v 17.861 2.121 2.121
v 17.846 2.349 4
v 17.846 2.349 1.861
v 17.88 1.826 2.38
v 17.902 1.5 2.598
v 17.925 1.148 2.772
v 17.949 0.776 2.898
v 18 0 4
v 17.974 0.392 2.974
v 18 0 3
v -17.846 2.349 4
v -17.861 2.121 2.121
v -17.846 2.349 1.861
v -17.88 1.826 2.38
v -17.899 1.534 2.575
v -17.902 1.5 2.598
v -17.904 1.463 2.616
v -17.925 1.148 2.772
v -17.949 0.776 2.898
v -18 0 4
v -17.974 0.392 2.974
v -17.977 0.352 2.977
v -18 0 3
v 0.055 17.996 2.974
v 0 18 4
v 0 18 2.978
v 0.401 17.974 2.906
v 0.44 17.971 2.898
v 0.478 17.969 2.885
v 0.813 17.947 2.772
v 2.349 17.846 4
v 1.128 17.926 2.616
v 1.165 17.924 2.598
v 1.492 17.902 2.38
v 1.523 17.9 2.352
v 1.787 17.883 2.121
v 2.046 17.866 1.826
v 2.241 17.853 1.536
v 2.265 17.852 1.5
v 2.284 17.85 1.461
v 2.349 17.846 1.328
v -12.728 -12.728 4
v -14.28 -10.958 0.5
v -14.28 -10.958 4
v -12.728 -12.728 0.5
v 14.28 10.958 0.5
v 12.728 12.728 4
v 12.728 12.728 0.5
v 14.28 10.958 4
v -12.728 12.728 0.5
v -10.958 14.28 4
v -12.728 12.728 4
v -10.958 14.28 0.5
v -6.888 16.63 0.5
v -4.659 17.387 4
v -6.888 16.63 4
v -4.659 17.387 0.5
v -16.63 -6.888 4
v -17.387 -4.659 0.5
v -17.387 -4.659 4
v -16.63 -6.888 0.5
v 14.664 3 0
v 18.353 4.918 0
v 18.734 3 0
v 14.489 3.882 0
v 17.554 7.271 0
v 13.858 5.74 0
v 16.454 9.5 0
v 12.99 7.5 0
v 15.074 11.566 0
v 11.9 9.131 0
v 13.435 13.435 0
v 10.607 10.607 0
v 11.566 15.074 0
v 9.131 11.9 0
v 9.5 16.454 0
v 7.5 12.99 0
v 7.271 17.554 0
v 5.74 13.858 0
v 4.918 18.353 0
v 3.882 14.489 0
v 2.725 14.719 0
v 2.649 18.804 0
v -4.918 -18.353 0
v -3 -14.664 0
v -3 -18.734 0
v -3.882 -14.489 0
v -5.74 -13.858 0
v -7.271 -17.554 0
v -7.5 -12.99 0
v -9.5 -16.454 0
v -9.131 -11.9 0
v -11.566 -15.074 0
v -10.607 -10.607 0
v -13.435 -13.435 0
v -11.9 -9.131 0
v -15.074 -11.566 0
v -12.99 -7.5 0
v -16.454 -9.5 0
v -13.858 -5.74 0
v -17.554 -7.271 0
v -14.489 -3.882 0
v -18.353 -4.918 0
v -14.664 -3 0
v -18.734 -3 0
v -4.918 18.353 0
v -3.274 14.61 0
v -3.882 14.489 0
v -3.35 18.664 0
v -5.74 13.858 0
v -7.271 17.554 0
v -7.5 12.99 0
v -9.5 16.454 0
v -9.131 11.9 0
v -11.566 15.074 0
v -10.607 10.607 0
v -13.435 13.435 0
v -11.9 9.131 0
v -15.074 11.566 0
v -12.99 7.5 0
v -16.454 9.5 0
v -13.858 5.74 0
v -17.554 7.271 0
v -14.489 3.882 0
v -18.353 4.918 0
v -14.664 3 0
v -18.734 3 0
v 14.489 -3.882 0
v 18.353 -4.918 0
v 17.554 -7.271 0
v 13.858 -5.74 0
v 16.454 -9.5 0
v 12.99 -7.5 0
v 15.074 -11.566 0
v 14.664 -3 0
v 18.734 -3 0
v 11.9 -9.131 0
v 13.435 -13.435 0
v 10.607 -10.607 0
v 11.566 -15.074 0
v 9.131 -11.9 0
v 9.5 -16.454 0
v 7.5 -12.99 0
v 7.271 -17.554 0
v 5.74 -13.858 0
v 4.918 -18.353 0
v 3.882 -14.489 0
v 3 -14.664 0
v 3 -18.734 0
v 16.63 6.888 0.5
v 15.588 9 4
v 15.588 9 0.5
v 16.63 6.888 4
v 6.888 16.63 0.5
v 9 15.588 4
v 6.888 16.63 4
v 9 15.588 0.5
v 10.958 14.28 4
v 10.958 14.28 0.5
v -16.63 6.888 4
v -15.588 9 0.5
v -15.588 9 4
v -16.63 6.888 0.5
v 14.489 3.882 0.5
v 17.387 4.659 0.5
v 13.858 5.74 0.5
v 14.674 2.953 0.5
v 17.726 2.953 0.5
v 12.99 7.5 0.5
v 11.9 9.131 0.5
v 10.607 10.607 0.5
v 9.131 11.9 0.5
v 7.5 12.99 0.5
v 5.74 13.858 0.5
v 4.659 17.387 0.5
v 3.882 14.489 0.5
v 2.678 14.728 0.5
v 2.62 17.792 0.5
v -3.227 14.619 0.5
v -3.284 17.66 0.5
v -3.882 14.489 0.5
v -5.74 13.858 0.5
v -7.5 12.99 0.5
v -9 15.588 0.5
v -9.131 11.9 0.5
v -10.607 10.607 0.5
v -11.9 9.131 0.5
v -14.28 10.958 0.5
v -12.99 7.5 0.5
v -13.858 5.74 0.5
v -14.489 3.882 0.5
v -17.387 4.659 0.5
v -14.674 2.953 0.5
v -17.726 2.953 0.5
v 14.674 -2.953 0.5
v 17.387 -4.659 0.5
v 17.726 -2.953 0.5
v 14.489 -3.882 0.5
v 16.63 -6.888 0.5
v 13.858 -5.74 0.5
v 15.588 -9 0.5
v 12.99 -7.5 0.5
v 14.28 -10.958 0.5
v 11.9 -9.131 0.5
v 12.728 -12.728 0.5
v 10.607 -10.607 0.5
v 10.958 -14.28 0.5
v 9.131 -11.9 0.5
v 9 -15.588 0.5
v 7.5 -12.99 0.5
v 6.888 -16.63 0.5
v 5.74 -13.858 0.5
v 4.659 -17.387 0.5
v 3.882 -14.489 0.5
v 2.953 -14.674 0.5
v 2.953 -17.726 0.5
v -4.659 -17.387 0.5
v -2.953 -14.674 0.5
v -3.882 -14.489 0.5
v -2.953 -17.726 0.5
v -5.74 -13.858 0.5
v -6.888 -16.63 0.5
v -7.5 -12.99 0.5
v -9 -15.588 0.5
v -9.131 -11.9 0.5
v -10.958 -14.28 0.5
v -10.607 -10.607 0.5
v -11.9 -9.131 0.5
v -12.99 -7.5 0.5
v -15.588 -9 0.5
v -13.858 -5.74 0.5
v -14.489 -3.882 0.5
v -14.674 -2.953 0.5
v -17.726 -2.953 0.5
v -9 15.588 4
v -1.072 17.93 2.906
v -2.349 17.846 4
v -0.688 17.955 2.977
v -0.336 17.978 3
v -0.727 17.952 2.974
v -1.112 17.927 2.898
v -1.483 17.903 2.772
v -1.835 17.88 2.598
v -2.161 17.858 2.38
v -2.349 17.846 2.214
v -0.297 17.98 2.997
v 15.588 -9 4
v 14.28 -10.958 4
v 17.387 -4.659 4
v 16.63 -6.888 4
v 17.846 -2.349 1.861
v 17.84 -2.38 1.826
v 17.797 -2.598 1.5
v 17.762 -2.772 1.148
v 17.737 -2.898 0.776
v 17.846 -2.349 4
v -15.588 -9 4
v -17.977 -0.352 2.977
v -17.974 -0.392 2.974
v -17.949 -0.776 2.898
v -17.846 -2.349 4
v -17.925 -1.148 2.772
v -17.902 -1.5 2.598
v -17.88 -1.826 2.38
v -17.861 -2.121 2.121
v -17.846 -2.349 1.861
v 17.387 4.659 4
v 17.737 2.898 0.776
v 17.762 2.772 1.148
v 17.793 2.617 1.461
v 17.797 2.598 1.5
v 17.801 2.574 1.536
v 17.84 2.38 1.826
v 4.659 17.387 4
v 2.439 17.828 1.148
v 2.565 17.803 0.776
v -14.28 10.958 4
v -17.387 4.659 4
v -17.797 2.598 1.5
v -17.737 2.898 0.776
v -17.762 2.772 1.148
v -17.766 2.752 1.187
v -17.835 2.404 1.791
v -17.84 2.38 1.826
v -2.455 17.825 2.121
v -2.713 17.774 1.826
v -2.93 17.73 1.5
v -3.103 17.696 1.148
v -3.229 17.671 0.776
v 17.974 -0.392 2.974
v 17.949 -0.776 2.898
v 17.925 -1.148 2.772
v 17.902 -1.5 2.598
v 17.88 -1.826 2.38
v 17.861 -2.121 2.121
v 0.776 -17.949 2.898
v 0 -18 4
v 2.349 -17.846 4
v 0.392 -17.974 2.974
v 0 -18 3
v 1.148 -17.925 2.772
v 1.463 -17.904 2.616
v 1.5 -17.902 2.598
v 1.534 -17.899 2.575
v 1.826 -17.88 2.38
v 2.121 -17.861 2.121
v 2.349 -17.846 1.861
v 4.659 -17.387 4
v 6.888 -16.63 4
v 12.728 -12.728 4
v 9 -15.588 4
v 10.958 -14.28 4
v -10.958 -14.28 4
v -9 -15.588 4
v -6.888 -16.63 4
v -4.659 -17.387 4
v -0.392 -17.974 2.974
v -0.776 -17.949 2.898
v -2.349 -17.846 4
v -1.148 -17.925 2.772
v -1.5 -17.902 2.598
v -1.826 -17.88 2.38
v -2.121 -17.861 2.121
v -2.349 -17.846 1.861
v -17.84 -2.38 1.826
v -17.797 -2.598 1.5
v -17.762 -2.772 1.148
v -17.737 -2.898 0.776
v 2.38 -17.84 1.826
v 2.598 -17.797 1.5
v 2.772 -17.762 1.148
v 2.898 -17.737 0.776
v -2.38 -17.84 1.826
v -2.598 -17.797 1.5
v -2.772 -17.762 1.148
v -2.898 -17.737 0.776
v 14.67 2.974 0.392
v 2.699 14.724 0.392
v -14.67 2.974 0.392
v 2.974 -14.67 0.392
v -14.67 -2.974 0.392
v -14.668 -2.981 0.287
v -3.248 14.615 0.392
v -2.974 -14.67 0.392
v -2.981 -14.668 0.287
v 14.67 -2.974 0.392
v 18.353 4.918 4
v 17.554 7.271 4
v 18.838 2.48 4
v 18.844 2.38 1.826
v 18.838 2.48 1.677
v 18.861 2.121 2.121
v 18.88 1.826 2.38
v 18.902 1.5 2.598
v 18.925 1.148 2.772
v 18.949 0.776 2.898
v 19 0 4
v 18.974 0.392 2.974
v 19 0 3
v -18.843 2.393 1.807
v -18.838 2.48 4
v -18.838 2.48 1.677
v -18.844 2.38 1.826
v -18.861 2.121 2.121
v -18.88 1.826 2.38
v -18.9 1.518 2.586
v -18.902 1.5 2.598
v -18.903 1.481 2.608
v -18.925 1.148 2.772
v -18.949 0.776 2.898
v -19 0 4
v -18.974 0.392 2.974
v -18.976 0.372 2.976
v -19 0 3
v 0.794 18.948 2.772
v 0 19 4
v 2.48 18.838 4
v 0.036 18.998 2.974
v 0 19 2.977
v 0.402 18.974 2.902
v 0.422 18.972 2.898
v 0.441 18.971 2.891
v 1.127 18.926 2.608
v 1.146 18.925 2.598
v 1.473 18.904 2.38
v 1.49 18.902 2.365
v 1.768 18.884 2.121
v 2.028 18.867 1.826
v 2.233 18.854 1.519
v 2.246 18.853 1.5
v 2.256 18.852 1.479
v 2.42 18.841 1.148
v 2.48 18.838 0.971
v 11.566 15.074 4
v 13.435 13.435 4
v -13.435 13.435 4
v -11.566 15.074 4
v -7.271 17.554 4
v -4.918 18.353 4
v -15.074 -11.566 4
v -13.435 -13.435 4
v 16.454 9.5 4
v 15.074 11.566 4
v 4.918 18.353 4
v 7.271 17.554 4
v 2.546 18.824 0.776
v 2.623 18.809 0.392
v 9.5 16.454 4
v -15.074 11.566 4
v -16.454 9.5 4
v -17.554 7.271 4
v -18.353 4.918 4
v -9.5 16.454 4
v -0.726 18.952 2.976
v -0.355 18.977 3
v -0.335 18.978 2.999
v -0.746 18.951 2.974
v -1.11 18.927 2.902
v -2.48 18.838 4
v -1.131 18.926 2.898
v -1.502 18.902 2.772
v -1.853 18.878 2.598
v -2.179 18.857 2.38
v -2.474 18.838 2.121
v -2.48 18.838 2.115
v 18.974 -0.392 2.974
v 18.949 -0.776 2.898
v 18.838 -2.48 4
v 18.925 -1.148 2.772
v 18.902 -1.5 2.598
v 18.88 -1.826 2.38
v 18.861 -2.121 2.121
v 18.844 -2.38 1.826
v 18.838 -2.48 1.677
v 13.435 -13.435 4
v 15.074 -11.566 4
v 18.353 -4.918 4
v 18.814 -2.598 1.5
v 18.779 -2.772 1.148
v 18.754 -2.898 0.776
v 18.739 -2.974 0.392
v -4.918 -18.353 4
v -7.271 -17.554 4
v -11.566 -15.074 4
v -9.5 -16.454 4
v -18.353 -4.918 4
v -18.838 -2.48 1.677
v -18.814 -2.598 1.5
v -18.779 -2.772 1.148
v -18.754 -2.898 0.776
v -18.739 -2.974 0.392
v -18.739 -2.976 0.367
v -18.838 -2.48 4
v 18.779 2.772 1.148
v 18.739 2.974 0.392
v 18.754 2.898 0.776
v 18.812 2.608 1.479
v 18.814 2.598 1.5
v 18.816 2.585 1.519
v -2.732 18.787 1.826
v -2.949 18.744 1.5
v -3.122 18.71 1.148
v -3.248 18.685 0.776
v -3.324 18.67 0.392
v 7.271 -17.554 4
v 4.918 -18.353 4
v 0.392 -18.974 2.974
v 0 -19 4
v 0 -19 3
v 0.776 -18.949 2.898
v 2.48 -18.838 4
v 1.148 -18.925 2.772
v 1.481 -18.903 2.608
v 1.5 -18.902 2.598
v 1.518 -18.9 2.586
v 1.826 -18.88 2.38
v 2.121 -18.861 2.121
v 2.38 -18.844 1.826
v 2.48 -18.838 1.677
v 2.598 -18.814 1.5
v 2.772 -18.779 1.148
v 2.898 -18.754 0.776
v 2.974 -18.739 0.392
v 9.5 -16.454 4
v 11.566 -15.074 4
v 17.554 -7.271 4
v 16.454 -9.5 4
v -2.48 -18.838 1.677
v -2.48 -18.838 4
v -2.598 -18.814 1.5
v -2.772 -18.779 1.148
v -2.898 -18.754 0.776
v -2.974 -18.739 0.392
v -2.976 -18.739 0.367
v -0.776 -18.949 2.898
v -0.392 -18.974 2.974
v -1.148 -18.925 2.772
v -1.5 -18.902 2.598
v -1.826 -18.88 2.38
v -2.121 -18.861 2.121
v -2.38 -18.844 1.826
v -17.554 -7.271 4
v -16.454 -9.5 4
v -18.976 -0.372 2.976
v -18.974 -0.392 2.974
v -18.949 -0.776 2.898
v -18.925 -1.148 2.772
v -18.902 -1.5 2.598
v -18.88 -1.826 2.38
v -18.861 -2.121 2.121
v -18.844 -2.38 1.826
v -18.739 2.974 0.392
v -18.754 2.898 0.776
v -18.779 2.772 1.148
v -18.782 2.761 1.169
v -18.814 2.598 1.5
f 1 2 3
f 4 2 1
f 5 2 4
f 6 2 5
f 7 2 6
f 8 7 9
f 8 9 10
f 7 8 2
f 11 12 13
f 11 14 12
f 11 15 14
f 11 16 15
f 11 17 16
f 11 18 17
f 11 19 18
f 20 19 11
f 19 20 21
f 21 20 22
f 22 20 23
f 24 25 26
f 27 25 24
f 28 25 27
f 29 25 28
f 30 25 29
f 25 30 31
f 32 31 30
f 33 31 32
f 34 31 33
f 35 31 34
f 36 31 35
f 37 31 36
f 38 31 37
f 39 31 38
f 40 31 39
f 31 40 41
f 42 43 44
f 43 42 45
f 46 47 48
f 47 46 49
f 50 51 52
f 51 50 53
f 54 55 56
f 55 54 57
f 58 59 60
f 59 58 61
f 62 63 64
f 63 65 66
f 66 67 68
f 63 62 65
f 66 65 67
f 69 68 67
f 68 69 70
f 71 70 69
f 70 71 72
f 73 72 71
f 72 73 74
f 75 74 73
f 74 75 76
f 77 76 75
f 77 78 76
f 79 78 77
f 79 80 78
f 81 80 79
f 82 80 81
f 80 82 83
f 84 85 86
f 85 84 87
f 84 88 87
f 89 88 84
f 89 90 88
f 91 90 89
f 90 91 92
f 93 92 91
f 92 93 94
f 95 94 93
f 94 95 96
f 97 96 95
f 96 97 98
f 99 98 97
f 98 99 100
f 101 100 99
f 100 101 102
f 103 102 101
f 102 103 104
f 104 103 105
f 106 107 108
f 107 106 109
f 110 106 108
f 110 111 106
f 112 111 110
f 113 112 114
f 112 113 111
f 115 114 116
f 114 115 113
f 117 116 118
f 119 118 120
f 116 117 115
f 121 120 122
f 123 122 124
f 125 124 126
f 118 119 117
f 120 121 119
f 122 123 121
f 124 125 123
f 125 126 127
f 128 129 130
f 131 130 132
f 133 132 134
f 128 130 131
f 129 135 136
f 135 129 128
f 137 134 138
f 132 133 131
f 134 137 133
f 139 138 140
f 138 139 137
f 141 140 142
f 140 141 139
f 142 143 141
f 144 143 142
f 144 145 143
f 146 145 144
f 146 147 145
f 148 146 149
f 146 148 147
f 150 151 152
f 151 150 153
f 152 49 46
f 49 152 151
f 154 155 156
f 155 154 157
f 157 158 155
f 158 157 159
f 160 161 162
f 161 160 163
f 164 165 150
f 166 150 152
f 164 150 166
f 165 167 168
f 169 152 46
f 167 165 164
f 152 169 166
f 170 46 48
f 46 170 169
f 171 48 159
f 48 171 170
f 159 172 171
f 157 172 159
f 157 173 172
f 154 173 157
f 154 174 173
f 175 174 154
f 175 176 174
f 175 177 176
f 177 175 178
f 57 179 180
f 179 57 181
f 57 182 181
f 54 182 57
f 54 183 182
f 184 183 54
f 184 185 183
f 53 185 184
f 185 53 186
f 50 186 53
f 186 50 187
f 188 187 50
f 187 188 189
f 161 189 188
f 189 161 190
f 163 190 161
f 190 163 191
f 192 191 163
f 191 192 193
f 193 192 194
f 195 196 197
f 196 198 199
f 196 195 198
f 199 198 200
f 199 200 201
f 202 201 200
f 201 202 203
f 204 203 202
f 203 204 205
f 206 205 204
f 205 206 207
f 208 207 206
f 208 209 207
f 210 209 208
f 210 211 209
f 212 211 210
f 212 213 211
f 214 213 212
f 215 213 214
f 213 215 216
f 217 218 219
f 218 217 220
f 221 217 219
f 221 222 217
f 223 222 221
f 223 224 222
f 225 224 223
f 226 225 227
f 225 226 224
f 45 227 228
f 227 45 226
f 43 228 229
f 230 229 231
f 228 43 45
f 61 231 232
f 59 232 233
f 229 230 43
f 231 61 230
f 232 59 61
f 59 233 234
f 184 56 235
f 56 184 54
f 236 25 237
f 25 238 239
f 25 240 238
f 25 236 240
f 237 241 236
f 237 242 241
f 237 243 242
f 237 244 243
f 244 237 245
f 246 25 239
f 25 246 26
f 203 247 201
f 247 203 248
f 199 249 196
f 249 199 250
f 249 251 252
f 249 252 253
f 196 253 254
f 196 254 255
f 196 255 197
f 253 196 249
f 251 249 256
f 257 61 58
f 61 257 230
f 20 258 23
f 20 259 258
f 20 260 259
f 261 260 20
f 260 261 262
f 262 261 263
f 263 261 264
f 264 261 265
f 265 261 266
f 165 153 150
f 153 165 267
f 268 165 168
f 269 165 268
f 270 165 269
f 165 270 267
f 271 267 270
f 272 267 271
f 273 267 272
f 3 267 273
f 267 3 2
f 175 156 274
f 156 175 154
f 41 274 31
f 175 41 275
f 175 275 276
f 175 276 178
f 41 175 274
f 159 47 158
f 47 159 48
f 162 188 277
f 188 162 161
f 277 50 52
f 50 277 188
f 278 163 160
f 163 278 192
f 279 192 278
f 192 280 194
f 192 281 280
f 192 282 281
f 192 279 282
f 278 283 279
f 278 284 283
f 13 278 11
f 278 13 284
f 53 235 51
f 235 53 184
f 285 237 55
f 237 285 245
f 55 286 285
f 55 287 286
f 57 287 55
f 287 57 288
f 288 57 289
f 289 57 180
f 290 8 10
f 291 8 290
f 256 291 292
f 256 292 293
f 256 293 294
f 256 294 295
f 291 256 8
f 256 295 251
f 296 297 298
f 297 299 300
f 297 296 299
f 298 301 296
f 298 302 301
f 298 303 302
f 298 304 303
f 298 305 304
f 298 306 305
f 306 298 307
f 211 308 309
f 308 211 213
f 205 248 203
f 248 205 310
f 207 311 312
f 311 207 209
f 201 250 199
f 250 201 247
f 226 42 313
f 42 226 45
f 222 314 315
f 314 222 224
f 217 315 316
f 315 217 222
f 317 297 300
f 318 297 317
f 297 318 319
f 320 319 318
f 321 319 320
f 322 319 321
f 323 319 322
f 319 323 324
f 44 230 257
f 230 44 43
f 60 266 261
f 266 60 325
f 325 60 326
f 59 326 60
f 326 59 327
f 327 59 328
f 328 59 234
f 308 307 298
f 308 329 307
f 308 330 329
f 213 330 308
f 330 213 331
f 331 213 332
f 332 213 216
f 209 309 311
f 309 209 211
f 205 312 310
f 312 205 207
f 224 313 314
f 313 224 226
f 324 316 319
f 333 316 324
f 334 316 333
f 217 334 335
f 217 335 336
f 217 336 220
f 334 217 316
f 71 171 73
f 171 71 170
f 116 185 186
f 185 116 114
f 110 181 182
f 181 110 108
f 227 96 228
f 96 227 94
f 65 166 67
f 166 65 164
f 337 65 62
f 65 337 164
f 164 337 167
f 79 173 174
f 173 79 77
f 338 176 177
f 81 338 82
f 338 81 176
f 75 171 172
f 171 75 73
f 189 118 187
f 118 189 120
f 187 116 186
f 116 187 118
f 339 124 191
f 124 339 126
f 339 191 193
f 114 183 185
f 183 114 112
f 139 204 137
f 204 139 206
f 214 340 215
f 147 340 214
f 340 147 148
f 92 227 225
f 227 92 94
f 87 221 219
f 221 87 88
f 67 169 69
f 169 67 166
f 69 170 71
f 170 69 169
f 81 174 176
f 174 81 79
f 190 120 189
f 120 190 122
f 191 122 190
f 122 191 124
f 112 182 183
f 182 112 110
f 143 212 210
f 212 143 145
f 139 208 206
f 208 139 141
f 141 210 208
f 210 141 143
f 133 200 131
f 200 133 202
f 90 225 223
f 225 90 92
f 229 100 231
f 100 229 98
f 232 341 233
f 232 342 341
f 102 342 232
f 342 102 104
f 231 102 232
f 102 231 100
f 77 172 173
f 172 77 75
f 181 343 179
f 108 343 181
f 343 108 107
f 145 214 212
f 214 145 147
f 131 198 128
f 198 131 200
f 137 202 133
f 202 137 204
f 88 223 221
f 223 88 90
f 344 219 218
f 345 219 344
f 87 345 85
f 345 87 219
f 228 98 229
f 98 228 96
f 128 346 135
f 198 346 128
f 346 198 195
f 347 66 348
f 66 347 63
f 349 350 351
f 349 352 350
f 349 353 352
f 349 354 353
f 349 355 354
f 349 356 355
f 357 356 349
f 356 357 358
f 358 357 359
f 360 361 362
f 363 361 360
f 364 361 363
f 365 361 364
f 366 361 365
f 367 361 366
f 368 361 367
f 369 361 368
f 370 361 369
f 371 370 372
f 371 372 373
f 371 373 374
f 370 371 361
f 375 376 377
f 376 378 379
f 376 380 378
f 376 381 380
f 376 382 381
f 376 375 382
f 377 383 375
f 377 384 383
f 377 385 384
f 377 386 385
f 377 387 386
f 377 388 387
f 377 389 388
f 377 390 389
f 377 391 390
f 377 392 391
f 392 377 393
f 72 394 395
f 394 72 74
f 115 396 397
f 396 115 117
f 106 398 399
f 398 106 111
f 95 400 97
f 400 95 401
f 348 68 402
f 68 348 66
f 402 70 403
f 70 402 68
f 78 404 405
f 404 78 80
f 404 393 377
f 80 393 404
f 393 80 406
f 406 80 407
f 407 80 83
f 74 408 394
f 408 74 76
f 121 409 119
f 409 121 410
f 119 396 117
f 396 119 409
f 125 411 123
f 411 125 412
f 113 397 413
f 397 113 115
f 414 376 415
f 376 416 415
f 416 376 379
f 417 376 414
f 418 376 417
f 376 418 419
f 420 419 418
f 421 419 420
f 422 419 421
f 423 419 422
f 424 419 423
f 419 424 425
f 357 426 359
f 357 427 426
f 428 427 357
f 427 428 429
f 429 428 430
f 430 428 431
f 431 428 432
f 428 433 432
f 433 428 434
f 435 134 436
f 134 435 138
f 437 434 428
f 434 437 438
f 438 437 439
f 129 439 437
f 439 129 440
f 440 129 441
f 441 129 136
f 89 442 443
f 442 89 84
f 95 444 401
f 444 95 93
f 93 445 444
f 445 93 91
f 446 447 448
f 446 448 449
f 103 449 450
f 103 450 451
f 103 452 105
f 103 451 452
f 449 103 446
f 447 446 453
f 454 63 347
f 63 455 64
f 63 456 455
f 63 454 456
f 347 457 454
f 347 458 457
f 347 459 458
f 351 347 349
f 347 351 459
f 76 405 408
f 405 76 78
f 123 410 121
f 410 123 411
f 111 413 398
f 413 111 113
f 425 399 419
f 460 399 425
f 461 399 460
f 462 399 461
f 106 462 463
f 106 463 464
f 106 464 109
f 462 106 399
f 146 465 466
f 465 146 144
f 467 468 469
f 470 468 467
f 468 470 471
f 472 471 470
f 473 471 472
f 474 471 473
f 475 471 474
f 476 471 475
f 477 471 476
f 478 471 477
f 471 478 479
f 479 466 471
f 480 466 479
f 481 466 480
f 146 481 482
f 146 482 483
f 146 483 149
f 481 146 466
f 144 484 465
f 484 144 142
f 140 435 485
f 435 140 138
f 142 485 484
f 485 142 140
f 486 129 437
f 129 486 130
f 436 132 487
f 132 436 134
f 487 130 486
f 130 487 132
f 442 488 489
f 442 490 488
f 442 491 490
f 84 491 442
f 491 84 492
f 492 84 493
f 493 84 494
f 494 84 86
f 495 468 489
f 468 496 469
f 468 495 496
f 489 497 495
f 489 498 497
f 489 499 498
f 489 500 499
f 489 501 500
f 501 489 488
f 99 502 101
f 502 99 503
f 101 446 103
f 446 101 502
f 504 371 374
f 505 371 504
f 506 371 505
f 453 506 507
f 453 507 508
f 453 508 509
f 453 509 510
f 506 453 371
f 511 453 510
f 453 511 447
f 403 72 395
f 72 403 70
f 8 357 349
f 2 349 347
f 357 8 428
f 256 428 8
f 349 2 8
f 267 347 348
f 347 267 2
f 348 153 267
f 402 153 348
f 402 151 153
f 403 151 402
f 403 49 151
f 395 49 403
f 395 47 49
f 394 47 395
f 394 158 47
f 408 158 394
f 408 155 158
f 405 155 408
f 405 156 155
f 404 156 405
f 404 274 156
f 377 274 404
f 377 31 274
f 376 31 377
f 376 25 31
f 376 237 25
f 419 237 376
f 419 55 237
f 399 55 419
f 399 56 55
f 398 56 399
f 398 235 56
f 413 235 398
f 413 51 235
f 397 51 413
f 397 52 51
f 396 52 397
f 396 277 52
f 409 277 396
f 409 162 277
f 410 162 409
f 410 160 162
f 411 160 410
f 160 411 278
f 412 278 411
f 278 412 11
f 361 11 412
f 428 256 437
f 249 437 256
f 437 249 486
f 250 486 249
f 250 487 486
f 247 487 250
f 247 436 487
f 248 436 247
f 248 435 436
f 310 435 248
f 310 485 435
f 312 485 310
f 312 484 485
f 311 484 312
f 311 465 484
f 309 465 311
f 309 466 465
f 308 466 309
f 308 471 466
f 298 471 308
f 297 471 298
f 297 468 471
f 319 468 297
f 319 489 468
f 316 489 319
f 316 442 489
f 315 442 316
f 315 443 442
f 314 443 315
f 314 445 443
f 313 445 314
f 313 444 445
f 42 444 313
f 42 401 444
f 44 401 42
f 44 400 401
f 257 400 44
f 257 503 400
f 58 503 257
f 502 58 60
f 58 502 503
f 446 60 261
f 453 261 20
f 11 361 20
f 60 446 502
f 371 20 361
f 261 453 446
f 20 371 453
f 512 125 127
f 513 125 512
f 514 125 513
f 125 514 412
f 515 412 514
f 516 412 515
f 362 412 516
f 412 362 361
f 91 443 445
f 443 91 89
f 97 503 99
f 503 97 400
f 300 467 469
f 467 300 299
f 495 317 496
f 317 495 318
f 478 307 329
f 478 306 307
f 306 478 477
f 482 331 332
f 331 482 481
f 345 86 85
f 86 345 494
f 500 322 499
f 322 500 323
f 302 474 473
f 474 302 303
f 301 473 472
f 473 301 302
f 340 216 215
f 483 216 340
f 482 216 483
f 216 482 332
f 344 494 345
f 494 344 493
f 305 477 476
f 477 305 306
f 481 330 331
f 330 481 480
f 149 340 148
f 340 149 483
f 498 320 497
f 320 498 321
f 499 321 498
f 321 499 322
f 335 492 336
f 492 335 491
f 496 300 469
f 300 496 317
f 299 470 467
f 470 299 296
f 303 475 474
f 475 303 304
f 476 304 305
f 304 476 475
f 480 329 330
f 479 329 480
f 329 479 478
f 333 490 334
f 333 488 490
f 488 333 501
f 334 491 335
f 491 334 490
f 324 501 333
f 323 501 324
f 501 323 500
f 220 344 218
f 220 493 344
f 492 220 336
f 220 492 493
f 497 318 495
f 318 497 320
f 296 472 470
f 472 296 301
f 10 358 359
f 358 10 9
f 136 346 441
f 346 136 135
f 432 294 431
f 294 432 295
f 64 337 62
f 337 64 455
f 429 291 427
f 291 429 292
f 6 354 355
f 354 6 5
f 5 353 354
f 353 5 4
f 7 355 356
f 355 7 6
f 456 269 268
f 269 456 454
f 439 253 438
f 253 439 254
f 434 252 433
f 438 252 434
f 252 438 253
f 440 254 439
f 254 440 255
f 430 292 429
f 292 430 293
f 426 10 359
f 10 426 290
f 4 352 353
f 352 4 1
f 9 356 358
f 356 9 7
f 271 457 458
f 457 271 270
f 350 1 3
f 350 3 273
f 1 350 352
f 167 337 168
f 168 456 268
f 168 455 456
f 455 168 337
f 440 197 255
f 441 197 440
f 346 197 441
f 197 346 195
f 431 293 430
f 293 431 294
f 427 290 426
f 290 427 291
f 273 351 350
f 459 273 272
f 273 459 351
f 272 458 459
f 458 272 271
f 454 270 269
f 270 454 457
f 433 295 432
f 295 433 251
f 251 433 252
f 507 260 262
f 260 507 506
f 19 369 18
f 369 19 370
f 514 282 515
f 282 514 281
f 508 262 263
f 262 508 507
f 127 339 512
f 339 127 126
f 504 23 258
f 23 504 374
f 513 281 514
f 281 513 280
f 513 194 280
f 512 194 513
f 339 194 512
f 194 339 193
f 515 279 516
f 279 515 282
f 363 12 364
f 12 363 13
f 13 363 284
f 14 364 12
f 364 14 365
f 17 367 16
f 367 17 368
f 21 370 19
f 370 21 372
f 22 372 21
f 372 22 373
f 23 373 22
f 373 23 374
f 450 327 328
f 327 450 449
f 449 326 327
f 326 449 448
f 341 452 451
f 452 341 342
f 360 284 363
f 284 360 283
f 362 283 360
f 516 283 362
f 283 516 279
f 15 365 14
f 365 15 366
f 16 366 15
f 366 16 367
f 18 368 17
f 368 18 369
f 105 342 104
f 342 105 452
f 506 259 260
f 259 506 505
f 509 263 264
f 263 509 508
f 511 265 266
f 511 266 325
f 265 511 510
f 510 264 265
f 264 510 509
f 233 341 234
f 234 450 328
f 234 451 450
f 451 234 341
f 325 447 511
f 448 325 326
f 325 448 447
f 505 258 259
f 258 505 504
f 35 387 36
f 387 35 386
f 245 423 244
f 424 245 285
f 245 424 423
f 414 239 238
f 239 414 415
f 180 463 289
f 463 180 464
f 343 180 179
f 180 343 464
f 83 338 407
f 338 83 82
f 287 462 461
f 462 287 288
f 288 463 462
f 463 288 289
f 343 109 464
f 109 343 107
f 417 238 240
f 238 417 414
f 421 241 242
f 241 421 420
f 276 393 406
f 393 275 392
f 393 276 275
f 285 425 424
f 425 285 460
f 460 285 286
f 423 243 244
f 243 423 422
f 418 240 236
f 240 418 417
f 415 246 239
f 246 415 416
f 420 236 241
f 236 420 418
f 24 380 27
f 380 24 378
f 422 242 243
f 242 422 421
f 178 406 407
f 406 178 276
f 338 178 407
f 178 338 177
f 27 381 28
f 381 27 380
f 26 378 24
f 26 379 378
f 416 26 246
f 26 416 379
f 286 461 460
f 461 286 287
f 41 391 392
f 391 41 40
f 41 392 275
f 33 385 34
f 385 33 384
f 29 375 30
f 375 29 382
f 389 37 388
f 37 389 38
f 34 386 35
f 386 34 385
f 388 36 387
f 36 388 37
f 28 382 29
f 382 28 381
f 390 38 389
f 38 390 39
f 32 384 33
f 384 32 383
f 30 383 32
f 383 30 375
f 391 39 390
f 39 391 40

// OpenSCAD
// file: ../build_environments.scad
// build_environments.scad: modules to build level sections
//

module pool(diameter=10.0, wall_height=2.0, step_width=3.0, connections=[])
{
    difference() {
        union() {
        difference() {
            cylinder(h=0.5,r1=diameter+step_width,r2=diameter+step_width,$fn=48);
            translate([0,0,-0.1])
                cylinder(h=0.7,r1=diameter,r2=diameter,$fn=48);
        }
        difference() {
            cylinder(h=wall_height,r1=diameter+step_width+1.0,r2=diameter+step_width+1.0,$fn=48);
            translate([0,0,-0.1])
                cylinder(h=wall_height+0.2,r1=diameter+step_width,r2=diameter+step_width,$fn=48);
        }
        }
    
        for (c = connections)
        {
            rotate([0,90,0]) {
                angle = atan2(c[1],c[0]);
                rotate([-angle,0,0]) {
                    cylinder(h=diameter+5.0,r1=c[2],r2=c[2],$fn=48);
                }
            }
        }
    }
}

module straight(length=10.0, width=2.0, dy1=0.0, dy2=0.0, dz=0.0)
{
    dims = [0, 0, 0, 0, 0, (dz/length)];
    matrix = [
        [ 1, dims[0], dims[1], 0 ],
        [ dims[2], 1, dims[4], 0 ],
        [ dims[5], dims[3], 1, 0 ],
        [ 0, 0, 0, 1 ]
    ];
    multmatrix(matrix)
    difference() {
        translate([dy1,0,0])
        union() {
            rotate([0,90,0]) {
                difference() {
                    cylinder(h=(length-dy1-dy2),r1=width+1.0,r2=width+1.0,$fn=24);
                    translate([0,0,-0.1])
                        cylinder(h=(length-dy1-dy2+0.2),r1=width,r2=width,$fn=24);
                }
                difference() {
                    cylinder(h=1.0,r1=width+2.0,r2=width+2.0,$fn=24);
                    translate([0,0,-0.1])
                        cylinder(h=1.2,r1=width,r2=width,$fn=24);
                }
                translate([0,0,(length-dy1-dy2)-1.0]) {
                    difference() {
                        cylinder(h=1.0,r1=width+2.0,r2=width+2.0,$fn=24);
                        translate([0,0,-0.1])
                            cylinder(h=1.2,r1=width,r2=width,$fn=24);
                    }
                }
            }
        }
        translate([0,0,-(2*width+4.0)/2])
            cube([3*length,3*length,2*width+4.0],center=true);
    }
}

module curve(p0=[0,0], center=[0,0], dir=1, angle=0.0, width=2.0)
{
    radius = sqrt((p0[0]-center[0])*(p0[0]-center[0]) + (p0[1]-center[1])*(p0[1]-center[1]));
    if (dir == 0) {
        difference() {
            rotate([0,0,-90])
            difference() {
                rotate_extrude(angle = angle, convexity = 10, $fn=32)
                    translate([radius, 0, 0])
                        circle(r = width+1.0,$fn=24);
                rotate([0,0,-1.0])
                    rotate_extrude(angle = angle+2.0, convexity = 10, $fn=32)
                        translate([radius, 0, 0])
                            circle(r = width,$fn=24);
            }
            translate([0,0,-(2*width+4.0)/2])
                cube([5*radius,5*radius,2*width+4.0],center=true);
        }
    }
    else {
        difference() {
            rotate([0,0,90])
            difference() {
                rotate_extrude(angle = -angle, convexity = 10, $fn=32)
                    translate([radius, 0, 0])
                        circle(r = width+1.0,$fn=24);
                rotate([0,0,1.0])
                    rotate_extrude(angle = -angle-2.0, convexity = 10, $fn=32)
                        translate([radius, 0, 0])
                            circle(r = width,$fn=24);
            }
            translate([0,0,-(2*width+4.0)/2])
                cube([5*radius,5*radius,2*width+4.0],center=true);
        }
    }

}

// test pool
//pool(diameter=12.0000, wall_height=3.0000, step_width=3.0000, connections=[[0.0000,-26.0000,2.0000], [23.6074,0.0000,2.0000]]);

// test straight, slope
//straight(length=26.0000, width=2.0000, dy1=11.8322, dy2=6.7082, dz=0.0000);
//straight(length=29.1549, width=12.0000, dy1=0.0000, dy2=0.0000, dz=-15.0000);

// test curve
//curve(p0=[23.6074, 0.0000], center=[23.6074, 5.0000], dir=0, angle=60.1011, width=2.0000);
//curve(p0=[33.6426, 12.4219], center=[37.9771, 9.9295], dir=1, angle=120.4627, width=2.0000);
// main file
use <../build_environments.scad>;
pool(diameter=15.0000, wall_height=4.0000, step_width=3.0000, connections=[[0.0000,-40.0000,3.0000], [18.0000,0.0000,3.0000], [-18.0000,0.0000,3.0000], [-0.5516,29.4886,3.0000]]);
